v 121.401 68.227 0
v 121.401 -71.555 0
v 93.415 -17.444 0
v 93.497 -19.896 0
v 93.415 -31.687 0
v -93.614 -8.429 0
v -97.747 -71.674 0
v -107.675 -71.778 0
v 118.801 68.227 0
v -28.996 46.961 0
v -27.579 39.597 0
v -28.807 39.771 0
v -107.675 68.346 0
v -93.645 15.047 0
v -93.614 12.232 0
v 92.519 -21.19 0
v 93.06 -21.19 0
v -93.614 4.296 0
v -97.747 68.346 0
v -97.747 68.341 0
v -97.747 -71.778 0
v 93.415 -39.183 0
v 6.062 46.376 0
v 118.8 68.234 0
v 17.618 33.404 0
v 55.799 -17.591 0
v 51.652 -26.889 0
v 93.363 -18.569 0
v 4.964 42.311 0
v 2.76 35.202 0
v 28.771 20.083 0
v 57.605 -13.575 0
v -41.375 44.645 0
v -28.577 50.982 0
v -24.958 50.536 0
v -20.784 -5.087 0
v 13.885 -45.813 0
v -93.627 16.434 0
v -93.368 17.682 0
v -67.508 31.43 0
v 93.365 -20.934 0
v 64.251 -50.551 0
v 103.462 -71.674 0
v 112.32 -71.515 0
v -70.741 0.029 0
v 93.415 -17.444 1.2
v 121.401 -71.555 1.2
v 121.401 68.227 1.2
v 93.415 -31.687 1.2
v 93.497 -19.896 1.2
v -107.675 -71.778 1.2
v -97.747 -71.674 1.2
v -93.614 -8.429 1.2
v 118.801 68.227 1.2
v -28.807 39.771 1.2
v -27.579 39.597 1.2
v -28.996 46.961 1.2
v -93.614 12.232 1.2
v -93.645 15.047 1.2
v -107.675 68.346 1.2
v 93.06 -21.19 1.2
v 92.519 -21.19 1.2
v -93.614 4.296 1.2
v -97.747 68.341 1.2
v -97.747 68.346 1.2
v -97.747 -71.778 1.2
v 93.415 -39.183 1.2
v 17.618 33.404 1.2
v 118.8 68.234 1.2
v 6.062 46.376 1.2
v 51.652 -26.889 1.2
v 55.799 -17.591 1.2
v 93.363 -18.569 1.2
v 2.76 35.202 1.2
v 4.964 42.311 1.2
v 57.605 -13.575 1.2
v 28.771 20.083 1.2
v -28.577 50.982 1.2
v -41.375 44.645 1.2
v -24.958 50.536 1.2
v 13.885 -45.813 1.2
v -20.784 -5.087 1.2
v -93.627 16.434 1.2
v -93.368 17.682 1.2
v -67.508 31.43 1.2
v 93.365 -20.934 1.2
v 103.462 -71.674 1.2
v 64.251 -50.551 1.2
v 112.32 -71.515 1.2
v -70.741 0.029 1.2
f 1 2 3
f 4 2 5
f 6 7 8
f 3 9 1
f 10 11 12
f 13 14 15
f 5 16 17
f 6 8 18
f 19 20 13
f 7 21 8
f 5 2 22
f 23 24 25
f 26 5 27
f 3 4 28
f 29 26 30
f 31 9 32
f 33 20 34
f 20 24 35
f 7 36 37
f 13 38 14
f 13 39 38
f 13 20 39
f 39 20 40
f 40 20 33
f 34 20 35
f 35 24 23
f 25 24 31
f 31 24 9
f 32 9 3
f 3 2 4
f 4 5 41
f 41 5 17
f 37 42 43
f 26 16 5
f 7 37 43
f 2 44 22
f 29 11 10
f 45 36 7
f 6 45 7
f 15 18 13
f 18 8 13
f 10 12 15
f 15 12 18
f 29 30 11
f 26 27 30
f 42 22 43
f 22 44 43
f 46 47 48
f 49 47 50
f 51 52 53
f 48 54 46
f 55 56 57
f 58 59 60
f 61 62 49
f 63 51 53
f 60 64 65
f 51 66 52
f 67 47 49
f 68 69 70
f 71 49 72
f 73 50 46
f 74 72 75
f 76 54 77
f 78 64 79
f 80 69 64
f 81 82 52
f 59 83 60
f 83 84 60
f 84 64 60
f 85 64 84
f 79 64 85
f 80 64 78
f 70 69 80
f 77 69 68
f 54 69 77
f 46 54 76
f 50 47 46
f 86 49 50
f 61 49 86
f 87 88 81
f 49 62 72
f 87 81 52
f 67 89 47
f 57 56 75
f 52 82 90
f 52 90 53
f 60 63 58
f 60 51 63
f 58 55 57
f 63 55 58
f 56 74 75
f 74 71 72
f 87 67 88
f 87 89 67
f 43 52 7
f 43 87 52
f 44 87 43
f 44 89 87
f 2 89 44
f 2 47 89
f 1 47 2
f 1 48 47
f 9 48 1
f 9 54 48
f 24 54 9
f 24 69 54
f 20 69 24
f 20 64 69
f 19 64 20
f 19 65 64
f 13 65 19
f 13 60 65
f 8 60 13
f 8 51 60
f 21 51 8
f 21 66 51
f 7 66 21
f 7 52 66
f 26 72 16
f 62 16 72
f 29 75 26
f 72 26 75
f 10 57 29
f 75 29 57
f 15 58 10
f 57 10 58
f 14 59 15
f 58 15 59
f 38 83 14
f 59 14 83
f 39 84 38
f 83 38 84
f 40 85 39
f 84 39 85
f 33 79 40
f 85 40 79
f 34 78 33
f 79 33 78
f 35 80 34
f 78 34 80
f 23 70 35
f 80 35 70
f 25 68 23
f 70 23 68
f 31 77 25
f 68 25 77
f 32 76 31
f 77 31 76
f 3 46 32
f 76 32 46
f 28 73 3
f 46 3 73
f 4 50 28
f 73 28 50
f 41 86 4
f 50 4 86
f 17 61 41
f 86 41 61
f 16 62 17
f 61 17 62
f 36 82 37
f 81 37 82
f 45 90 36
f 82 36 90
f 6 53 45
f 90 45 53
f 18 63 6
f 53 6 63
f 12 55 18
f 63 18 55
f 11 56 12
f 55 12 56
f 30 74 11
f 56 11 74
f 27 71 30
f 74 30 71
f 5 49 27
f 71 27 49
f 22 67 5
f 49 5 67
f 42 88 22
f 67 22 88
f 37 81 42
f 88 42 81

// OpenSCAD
linear_extrude(height=1.2) 
rect2460();

module rect2460()
    polygon(
        points=
            [[-107.675, 68.346], [-107.675, 67.781], [-107.675, 53.394], [-107.675, -71.778], [-97.747, -71.778], [-97.747, -71.674], [103.462, -71.674], [112.32, -71.515], [121.401, -71.555], [121.401, 68.227], [118.801, 68.227], [118.8, 68.234], [-97.747, 68.341], [-97.747, 68.346], [-28.577, 50.982], [-24.958, 50.536], [6.062, 46.376], [17.618, 33.404], [28.771, 20.083], [57.605, -13.575], [93.415, -17.444], [93.363, -18.569], [93.497, -19.896], [93.365, -20.934], [93.06, -21.19], [92.519, -21.19], [55.799, -17.591], [4.964, 42.311], [-28.996, 46.961], [-93.614, 12.232], [-93.645, 15.047], [-93.627, 16.434], [-93.368, 17.682], [-67.508, 31.43], [-41.375, 44.645], [-28.807, 39.771], [-27.579, 39.597], [2.76, 35.202], [51.652, -26.889], [93.415, -31.687], [93.415, -39.183], [64.251, -50.551], [13.885, -45.813], [-20.784, -5.087], [-70.741, 0.029], [-93.614, -8.429], [-93.614, 4.296]],
        paths=
            [[0, 1, 2, 3, 4, 5, 6, 7, 8, 9, 10, 11, 12, 13, 0], [14, 15, 16, 17, 18, 19, 20, 21, 22, 23, 24, 25, 26, 27, 28, 29, 30, 31, 32, 33, 34, 14, 14], [35, 36, 37, 38, 39, 40, 41, 42, 43, 44, 45, 46, 35, 35]]
    );
